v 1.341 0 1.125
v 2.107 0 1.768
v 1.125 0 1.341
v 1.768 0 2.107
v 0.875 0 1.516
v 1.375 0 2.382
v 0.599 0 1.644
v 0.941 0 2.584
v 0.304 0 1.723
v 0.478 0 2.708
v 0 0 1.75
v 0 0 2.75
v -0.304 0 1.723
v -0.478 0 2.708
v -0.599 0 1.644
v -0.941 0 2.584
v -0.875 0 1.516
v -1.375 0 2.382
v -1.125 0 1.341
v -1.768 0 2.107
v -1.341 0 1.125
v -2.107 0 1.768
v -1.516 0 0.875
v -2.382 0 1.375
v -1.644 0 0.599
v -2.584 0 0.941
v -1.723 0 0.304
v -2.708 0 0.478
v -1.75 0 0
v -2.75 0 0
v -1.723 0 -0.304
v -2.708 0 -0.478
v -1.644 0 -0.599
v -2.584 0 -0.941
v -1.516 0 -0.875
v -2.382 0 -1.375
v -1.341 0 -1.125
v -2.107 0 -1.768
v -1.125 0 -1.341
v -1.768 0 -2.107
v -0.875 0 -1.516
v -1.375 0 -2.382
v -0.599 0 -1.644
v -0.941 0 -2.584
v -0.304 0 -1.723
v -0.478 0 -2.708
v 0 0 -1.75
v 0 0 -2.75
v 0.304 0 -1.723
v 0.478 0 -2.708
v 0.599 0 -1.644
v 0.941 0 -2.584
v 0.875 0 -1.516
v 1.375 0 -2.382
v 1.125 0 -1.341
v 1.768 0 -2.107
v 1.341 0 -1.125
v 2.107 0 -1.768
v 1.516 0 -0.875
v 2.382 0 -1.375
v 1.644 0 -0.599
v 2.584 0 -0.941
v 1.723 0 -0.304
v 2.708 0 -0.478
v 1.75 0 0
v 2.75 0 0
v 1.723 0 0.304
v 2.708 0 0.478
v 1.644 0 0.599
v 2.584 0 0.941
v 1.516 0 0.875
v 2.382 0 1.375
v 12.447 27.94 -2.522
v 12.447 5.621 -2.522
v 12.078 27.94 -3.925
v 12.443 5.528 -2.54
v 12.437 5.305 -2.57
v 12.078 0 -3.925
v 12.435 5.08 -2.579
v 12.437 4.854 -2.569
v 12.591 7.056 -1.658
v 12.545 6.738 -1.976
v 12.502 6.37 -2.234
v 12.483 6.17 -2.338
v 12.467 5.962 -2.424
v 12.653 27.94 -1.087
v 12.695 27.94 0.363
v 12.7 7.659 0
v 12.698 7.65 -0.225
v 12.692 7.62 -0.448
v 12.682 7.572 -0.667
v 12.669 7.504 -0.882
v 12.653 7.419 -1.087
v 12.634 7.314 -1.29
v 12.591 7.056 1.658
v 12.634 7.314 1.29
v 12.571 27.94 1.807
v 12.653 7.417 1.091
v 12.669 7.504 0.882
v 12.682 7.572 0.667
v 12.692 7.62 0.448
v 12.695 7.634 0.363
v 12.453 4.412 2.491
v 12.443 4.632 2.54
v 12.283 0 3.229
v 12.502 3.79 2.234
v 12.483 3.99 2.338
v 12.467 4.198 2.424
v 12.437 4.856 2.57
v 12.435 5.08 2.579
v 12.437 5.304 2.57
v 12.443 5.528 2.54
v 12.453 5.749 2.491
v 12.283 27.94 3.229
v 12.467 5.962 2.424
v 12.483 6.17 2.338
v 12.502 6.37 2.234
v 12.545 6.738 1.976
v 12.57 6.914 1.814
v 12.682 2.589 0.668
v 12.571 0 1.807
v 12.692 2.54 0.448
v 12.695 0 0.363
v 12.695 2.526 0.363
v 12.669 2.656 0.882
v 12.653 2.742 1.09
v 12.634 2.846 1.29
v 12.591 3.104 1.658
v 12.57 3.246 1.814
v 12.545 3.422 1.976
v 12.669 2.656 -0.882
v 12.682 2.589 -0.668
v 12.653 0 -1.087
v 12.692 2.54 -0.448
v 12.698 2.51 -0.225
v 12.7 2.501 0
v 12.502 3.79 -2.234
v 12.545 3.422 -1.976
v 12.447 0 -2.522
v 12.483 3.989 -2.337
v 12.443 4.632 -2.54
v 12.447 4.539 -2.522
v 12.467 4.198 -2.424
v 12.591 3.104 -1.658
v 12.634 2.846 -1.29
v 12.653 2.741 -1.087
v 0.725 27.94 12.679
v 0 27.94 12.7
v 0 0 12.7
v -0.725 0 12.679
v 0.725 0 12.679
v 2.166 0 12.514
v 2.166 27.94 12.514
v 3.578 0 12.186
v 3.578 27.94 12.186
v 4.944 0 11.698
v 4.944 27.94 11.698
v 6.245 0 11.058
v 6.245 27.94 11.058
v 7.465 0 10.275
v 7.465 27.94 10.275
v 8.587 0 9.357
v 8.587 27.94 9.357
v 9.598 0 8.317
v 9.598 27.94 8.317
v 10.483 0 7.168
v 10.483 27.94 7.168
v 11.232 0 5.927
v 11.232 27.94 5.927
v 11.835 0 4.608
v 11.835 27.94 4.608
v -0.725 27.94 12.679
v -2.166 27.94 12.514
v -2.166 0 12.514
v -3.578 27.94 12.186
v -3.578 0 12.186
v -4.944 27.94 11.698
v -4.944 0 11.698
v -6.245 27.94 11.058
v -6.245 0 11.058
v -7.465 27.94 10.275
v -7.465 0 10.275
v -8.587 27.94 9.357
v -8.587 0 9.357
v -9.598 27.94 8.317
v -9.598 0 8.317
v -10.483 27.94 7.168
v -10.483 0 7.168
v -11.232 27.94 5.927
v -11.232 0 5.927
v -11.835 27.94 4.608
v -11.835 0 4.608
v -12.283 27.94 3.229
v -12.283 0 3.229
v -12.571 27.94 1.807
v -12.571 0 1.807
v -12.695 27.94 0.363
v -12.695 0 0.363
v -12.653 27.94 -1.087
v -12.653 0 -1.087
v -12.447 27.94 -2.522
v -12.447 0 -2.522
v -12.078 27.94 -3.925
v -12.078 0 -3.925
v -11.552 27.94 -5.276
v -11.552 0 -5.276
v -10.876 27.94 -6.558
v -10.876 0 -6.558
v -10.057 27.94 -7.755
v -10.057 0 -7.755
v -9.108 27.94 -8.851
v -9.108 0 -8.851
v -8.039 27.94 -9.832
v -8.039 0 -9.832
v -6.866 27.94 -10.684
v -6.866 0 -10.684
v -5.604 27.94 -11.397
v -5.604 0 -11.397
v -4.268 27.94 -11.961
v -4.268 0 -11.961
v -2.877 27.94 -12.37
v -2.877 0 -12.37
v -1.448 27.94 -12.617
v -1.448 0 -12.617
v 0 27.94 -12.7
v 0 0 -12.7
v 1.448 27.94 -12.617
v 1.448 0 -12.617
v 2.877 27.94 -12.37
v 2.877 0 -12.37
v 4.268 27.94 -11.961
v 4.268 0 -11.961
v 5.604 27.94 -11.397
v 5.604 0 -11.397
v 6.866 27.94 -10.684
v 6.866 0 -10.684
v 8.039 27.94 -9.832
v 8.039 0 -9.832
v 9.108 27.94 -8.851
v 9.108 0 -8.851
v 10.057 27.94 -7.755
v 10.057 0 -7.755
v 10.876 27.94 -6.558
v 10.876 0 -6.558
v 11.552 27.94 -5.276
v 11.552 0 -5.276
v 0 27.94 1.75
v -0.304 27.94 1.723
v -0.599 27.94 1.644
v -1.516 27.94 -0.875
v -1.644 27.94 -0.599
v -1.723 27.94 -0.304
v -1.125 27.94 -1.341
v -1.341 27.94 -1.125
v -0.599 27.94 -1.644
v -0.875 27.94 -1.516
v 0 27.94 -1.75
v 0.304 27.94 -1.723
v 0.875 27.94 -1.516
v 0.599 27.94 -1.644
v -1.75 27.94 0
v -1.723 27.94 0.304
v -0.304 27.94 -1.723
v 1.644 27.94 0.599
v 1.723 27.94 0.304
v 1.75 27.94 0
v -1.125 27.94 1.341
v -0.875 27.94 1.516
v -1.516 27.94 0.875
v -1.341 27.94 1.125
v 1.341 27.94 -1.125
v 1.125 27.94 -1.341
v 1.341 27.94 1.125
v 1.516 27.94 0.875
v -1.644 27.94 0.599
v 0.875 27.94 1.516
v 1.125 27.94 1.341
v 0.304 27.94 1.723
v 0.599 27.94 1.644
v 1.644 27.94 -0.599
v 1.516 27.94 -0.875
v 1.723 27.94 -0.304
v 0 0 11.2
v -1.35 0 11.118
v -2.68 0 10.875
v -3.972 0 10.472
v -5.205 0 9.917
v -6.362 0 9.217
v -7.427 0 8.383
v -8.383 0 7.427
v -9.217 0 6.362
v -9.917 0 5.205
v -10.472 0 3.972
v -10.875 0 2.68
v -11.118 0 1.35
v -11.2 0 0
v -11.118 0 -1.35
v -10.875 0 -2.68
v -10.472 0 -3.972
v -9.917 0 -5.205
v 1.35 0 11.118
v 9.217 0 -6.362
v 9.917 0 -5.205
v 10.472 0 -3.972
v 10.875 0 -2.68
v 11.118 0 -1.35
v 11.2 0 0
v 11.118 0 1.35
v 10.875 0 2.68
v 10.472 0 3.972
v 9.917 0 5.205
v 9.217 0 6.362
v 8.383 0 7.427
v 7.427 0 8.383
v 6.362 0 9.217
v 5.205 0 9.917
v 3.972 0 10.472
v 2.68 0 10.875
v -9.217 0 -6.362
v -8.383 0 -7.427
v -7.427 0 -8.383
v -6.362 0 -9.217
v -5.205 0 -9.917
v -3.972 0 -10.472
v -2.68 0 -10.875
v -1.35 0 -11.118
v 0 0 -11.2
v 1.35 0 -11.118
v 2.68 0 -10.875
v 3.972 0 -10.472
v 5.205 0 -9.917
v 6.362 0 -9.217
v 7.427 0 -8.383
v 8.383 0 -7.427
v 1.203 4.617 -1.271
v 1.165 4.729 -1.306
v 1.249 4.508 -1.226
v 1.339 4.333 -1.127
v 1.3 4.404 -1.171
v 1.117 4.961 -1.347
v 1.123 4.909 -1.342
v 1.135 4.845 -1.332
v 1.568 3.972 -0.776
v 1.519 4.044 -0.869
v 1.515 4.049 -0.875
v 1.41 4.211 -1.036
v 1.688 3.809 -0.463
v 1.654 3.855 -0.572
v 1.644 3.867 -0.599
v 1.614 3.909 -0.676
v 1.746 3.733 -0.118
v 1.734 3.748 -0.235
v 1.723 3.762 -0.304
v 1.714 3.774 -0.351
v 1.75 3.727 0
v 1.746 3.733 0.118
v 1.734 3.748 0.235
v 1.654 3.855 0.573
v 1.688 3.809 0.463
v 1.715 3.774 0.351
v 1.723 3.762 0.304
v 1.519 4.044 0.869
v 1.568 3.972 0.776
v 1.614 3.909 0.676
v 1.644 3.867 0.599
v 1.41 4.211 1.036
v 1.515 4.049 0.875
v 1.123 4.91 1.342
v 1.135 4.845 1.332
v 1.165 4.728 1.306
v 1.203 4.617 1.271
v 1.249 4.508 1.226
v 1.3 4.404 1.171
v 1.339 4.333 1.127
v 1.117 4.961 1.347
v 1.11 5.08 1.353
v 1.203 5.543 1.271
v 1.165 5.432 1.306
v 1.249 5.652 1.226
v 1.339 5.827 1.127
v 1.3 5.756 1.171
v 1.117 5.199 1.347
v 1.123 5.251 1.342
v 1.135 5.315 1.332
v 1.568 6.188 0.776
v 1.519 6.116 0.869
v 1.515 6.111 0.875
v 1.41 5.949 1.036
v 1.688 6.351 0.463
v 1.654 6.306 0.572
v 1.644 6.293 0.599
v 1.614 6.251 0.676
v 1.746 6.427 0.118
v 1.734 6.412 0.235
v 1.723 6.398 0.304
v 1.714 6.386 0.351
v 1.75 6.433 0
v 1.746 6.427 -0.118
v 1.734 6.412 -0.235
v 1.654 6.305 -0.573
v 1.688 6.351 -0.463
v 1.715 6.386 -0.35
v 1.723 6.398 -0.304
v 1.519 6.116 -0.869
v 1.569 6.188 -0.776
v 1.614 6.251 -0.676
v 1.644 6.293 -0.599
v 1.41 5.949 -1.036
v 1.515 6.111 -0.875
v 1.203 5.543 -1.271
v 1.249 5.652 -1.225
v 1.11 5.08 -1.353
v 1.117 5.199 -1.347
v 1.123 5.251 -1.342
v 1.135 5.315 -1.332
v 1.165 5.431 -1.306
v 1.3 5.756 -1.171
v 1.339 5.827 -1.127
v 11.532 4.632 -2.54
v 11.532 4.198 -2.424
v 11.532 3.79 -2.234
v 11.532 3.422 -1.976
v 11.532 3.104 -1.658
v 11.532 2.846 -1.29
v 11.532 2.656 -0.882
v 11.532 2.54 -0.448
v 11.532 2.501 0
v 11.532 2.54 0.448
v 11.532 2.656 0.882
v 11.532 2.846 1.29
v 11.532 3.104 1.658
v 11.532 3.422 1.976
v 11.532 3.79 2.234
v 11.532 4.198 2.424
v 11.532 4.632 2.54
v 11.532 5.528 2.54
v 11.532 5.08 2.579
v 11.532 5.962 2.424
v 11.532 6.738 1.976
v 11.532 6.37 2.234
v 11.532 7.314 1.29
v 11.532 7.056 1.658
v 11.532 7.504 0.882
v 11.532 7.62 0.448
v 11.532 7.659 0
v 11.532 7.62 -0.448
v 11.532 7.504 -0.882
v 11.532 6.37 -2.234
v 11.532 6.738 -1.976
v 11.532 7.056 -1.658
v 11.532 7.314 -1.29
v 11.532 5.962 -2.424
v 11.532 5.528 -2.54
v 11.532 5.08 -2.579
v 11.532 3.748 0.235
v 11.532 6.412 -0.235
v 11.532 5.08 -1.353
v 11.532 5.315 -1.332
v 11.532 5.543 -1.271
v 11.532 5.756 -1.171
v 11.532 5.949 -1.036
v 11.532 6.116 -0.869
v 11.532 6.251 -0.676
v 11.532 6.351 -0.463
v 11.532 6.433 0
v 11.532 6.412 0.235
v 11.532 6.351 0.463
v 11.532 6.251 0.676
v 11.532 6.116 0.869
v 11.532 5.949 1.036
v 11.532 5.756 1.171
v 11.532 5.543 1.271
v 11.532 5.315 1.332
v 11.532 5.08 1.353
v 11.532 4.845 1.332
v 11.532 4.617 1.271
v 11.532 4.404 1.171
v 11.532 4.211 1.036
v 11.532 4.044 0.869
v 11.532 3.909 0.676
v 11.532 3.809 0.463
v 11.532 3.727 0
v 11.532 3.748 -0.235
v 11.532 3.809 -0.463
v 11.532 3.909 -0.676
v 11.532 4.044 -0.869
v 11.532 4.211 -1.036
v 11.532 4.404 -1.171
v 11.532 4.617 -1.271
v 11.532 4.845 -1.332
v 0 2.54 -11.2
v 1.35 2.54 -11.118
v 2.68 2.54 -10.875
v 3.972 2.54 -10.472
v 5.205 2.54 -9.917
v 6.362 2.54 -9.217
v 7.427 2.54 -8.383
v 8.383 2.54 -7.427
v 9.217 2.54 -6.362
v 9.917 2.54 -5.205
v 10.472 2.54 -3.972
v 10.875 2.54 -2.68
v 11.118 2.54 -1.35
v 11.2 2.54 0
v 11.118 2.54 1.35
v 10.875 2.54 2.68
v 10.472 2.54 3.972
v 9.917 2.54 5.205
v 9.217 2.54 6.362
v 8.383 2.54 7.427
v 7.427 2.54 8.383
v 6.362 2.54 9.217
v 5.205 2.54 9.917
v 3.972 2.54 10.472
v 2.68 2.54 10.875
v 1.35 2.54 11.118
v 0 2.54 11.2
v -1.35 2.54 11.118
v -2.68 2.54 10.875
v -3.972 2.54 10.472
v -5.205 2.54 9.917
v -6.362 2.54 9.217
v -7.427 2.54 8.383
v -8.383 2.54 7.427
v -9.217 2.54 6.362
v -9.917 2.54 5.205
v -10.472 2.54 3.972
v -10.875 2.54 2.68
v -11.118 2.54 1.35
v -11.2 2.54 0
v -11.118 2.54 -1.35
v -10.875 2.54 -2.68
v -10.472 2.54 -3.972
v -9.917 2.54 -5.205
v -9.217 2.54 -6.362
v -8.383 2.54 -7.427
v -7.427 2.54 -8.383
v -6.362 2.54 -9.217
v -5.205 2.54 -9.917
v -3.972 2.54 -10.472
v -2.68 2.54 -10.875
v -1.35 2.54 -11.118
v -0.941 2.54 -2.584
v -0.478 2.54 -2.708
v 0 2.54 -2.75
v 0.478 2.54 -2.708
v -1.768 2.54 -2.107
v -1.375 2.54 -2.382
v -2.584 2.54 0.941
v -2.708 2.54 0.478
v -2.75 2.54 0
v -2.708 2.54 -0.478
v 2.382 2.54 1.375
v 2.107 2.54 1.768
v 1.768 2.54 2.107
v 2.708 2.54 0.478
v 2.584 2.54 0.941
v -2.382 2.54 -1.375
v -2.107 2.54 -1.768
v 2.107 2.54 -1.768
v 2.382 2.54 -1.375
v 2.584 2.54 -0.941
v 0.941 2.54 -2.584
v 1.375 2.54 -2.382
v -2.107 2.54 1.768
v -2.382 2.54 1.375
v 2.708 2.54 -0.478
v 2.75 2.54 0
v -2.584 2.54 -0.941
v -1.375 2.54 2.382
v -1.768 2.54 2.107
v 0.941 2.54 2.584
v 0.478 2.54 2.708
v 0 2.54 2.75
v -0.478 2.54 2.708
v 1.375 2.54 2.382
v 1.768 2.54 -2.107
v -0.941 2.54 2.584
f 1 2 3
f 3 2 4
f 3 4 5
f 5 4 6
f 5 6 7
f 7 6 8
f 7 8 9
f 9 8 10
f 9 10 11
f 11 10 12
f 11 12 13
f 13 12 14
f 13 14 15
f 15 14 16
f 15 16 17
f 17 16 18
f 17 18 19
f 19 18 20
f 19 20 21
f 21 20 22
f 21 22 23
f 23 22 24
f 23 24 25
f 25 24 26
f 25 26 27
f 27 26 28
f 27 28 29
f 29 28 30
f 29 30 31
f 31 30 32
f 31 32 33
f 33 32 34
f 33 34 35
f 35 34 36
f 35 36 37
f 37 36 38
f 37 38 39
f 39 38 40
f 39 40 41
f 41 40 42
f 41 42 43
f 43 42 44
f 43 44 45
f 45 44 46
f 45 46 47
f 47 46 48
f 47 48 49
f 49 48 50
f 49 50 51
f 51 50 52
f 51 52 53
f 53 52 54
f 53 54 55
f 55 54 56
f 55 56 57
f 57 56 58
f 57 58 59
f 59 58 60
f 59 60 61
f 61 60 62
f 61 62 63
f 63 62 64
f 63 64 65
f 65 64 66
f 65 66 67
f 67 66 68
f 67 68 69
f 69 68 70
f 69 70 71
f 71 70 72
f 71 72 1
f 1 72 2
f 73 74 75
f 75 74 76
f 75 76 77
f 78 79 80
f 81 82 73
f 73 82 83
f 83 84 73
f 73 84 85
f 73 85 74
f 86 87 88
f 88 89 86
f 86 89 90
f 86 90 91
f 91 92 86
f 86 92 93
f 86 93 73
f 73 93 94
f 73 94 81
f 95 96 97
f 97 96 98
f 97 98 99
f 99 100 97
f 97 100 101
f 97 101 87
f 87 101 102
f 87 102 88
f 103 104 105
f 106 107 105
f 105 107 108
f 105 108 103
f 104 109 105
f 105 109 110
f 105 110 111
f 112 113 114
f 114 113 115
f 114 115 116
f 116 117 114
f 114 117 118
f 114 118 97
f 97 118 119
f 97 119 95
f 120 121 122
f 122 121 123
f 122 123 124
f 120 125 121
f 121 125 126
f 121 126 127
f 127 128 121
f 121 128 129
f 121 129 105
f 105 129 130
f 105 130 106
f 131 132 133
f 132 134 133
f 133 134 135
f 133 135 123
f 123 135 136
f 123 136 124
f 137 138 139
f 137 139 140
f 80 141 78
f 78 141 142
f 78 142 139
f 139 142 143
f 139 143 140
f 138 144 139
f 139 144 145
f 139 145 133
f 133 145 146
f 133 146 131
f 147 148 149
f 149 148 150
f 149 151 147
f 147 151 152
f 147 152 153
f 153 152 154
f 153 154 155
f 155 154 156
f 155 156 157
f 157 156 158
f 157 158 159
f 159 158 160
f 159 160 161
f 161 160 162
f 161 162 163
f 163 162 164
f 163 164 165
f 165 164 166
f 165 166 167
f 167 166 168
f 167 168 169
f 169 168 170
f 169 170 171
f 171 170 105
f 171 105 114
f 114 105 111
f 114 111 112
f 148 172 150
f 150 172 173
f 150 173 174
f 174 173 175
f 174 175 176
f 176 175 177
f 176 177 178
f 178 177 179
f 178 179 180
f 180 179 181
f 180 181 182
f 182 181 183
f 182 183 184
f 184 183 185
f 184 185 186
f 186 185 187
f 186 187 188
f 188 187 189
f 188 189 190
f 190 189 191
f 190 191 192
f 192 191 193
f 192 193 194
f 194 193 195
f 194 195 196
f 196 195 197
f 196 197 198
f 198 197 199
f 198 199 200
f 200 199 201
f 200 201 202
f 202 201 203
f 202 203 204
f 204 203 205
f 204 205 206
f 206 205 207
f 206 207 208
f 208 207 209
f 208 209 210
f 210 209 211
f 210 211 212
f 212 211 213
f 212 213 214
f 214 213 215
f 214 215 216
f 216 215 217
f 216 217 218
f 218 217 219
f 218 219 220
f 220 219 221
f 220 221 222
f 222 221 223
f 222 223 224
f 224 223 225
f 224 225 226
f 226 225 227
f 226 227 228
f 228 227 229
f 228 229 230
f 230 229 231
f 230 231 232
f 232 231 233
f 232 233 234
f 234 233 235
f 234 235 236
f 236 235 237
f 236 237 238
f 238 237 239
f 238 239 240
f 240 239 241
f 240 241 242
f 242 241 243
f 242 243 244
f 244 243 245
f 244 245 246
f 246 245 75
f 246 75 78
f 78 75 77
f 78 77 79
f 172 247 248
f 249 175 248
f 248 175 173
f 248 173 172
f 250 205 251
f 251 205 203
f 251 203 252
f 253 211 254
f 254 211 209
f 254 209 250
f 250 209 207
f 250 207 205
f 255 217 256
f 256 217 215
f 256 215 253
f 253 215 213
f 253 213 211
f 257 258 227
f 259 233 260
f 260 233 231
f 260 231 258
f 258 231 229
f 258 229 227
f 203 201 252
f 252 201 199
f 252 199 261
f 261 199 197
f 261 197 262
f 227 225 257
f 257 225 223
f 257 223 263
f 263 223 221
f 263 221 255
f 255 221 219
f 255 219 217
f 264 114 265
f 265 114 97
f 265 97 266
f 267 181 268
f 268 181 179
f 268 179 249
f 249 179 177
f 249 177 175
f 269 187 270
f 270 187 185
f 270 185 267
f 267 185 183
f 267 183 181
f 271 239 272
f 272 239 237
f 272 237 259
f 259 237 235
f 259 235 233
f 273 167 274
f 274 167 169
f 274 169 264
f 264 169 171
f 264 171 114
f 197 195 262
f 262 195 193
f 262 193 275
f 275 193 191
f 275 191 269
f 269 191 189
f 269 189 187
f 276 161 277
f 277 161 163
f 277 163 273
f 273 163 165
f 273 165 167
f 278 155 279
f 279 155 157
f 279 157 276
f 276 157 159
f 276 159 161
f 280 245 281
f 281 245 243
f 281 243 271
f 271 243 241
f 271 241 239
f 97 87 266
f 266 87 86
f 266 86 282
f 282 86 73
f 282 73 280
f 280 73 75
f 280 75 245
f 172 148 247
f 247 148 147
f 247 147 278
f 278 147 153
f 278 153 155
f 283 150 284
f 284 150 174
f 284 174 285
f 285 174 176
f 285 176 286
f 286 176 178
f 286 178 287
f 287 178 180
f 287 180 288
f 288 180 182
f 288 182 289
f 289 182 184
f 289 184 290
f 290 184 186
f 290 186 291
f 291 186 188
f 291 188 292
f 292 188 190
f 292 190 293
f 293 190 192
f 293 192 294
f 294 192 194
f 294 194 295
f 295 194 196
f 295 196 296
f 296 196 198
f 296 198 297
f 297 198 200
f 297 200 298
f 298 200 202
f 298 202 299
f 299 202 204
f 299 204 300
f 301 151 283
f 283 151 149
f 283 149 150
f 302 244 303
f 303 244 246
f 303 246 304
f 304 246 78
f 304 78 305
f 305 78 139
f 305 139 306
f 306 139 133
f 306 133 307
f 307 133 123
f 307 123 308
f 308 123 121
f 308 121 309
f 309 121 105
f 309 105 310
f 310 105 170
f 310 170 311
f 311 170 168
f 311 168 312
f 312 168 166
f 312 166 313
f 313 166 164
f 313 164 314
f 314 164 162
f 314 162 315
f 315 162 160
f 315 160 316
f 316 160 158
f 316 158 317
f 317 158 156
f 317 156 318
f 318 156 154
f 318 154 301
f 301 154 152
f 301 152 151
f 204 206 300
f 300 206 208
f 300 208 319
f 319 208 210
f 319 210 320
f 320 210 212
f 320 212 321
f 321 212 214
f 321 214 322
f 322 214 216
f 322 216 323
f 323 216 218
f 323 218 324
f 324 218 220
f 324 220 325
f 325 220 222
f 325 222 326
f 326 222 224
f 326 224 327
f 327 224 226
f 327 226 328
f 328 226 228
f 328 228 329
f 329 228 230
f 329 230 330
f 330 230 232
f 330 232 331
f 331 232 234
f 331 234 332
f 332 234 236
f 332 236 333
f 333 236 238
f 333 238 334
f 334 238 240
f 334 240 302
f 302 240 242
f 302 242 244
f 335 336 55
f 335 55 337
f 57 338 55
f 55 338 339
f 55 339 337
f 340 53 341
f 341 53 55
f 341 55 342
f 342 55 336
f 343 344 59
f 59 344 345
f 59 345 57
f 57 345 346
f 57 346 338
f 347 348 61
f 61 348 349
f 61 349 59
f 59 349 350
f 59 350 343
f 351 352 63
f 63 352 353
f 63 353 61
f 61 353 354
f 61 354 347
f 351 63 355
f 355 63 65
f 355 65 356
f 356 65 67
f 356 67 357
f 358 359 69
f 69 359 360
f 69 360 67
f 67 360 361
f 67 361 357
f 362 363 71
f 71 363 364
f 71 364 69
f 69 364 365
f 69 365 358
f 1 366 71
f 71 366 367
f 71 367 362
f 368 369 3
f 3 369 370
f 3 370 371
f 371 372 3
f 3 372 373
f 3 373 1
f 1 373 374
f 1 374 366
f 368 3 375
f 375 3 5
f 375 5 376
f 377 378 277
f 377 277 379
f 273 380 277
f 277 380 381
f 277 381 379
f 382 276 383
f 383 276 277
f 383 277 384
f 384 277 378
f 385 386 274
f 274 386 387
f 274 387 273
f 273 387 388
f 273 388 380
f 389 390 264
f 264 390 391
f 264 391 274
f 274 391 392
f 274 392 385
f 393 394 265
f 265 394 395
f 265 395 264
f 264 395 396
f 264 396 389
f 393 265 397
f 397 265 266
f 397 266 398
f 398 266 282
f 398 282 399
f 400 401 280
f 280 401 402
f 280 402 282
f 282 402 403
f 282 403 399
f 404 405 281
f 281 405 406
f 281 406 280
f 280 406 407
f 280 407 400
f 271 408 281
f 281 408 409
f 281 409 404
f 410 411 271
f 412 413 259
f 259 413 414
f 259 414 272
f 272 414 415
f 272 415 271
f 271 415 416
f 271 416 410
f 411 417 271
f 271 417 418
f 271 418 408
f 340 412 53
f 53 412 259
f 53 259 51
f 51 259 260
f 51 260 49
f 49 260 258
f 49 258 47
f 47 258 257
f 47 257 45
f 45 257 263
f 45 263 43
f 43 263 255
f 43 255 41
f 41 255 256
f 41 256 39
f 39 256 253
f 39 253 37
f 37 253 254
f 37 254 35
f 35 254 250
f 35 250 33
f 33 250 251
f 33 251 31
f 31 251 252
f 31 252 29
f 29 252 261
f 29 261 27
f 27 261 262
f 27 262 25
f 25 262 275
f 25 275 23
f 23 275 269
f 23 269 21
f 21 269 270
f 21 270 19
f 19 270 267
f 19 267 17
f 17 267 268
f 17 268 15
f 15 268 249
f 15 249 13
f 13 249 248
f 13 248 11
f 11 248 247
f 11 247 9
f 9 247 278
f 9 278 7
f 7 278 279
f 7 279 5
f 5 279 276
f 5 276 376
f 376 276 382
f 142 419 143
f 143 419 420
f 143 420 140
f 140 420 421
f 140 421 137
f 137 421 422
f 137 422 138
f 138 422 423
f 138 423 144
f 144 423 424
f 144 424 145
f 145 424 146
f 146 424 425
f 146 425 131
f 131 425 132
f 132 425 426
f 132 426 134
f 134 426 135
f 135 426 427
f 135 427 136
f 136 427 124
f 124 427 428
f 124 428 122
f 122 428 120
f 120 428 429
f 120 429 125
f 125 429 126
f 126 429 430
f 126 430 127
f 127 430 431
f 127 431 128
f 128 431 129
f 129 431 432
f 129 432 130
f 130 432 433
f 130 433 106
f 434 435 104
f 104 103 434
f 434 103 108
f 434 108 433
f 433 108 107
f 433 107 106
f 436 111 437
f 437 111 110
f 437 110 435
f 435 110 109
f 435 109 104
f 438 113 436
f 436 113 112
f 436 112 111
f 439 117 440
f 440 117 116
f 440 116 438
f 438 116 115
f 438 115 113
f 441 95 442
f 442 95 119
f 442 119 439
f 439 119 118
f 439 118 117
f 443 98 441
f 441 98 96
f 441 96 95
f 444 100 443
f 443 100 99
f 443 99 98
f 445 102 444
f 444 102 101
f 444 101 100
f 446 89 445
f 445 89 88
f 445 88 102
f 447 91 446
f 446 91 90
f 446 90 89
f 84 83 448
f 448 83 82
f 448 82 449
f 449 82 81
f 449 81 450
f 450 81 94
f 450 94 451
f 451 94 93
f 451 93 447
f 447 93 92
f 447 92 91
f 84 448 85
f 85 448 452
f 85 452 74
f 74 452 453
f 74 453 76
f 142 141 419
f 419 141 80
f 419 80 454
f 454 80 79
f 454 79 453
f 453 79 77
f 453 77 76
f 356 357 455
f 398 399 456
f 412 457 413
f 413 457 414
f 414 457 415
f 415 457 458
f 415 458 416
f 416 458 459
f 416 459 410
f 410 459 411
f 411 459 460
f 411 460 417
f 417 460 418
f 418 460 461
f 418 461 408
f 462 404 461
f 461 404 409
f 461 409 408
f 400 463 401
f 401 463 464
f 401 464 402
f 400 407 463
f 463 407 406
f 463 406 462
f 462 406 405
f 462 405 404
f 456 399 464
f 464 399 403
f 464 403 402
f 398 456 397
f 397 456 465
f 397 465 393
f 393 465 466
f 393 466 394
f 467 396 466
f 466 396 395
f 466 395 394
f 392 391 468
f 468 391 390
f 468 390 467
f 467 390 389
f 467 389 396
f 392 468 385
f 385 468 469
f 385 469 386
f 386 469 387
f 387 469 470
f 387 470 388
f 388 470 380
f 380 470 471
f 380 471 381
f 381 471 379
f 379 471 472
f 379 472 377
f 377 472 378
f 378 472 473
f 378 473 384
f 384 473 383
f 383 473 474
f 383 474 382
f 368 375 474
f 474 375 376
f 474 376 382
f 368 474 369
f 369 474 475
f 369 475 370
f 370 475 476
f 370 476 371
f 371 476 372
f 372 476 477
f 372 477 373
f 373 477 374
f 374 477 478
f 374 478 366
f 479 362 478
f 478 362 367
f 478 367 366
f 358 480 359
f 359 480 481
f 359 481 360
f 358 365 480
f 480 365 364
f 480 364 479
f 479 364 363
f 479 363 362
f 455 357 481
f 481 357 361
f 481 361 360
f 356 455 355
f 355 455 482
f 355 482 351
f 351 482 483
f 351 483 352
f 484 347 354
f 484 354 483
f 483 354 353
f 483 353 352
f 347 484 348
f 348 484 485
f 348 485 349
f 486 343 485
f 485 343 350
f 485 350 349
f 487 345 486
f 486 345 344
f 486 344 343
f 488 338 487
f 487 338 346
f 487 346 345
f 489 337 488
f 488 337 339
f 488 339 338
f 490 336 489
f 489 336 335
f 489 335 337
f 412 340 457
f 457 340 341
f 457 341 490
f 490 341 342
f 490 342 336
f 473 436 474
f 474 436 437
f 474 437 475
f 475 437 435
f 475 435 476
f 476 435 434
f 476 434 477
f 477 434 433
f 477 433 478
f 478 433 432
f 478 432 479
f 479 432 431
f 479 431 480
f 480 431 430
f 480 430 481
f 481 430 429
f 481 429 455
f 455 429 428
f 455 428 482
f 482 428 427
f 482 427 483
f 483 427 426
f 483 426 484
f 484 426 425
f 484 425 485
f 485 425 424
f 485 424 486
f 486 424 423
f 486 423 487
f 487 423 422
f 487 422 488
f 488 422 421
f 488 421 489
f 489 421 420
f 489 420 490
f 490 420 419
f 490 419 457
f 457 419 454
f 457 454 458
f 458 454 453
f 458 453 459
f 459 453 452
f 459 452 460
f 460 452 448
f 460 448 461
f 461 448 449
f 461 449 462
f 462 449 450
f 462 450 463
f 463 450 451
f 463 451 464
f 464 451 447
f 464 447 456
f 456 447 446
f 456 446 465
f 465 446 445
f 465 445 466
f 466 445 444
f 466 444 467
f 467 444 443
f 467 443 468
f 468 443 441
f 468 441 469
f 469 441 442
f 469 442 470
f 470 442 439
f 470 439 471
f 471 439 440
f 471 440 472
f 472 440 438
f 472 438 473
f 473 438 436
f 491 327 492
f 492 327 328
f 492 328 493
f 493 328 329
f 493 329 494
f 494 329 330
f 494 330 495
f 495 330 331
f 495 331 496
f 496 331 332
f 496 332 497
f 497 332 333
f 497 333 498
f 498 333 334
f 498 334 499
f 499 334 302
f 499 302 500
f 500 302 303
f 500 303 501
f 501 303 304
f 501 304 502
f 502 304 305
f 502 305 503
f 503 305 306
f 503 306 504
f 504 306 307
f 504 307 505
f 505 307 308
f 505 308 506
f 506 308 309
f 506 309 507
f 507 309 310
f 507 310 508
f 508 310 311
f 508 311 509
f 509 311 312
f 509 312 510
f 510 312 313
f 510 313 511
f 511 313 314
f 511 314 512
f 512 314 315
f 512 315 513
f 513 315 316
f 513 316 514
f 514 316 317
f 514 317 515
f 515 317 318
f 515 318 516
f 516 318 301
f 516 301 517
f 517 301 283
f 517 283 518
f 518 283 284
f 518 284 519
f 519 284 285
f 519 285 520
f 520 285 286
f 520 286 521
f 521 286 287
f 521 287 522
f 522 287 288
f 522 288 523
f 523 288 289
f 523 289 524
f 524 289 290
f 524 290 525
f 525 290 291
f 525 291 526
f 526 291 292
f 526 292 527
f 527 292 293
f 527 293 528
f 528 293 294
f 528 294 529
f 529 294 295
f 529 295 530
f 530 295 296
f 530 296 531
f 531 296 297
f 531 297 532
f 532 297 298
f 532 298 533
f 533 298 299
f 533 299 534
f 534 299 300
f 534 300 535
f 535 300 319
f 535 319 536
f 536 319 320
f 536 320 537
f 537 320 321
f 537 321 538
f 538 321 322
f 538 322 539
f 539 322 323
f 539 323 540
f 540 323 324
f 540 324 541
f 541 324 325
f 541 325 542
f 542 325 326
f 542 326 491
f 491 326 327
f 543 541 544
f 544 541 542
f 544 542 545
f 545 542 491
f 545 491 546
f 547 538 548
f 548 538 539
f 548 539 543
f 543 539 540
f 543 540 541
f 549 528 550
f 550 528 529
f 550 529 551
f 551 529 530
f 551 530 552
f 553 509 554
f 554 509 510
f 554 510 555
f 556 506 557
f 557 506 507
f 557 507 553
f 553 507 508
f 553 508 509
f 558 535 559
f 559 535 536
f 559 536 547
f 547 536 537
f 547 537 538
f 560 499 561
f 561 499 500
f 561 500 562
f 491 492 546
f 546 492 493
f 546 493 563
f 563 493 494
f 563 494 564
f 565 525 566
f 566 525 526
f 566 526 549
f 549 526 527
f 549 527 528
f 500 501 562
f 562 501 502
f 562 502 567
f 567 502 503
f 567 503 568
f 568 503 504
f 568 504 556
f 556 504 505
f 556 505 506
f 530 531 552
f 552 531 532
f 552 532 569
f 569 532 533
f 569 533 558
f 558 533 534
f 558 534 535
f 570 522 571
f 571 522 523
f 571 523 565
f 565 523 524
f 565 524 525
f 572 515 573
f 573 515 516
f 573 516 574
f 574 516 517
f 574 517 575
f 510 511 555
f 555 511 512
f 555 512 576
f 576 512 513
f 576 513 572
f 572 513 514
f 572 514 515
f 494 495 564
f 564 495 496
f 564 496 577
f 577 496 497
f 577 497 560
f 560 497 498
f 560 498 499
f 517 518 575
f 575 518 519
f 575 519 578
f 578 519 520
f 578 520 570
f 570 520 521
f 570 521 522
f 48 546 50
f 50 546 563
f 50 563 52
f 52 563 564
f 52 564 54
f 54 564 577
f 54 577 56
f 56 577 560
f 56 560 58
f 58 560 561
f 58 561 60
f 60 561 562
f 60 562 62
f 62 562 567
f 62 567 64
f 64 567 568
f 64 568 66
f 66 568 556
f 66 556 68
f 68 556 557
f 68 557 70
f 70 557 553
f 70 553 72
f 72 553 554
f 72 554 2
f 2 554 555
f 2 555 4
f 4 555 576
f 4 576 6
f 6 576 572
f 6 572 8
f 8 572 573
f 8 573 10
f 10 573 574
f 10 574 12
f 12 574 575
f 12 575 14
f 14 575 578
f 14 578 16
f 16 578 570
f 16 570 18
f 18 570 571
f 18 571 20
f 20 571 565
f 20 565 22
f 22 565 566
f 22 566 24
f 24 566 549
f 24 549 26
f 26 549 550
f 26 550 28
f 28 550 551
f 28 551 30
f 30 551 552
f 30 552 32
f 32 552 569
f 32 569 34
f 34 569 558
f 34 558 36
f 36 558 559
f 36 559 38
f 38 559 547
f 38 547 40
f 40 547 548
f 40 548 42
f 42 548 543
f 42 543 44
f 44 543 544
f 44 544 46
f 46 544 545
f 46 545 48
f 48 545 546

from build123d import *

# Parameters (mm, degrees)
SKETCH1_R             = 12.7
BOSS_EXTRUDE1_DEPTH   = 27.94
F_3_0MM_DOWEL_HOLE2_D = 3.5
SKETCH8_R             = 11.2
SKETCH8_R_2           = 2.75
CUT_EXTRUDE1_DEPTH    = 2.54


# Read off the part's stored shape, not the designer's step: CBORE for #2 Button Head Cap Screw1
with BuildPart() as part:
    # Sketch1 → Boss-Extrude1 (new body)
    with BuildSketch(Plane(origin=(0, 0, 0), x_dir=(1, 0, 0), z_dir=(0, 1, 0))):
        with Locations(Location((0, 0, 0), (0, 0, 270))):
            Circle(SKETCH1_R)
    extrude(amount=BOSS_EXTRUDE1_DEPTH)

    # Ø3.0mm Dowel Hole2 (through all)
    with Locations(Plane(origin=(0, 27.94, 0), x_dir=(1, 0, 0), z_dir=(0, 1, 0))):
        with Locations((0, 0)):
            Hole(F_3_0MM_DOWEL_HOLE2_D / 2)

    # CBORE for #2 Button Head Cap Screw1 outl → CBORE for #2 Button Head Cap Screw1 (revolve, cut)
    with BuildSketch(Plane(origin=(0, 5.08, 0), x_dir=(0, 1, 0), z_dir=(0, 0, -1))):
        Polygon((1.35255, 11.5316), (2.57937, 11.5316), (2.57937, 12.700038915), (0, 12.700038915), (0, 1.110061146), (1.35255, 1.110061146), align=None)
    revolve(axis=Axis((0, 5.08, 0), (1, 0, 0)), mode=Mode.SUBTRACT)

    # Sketch8 → Cut-Extrude1 (cut)
    with BuildSketch(Plane.XZ):
        with Locations(Location((0, 0, 0), (0, 0, 270))):
            Circle(SKETCH8_R)
        with Locations(Location((0, 0, 0), (0, 0, 270))):
            Circle(SKETCH8_R_2, mode=Mode.SUBTRACT)
    extrude(amount=-CUT_EXTRUDE1_DEPTH, mode=Mode.SUBTRACT)


solid = part.part
